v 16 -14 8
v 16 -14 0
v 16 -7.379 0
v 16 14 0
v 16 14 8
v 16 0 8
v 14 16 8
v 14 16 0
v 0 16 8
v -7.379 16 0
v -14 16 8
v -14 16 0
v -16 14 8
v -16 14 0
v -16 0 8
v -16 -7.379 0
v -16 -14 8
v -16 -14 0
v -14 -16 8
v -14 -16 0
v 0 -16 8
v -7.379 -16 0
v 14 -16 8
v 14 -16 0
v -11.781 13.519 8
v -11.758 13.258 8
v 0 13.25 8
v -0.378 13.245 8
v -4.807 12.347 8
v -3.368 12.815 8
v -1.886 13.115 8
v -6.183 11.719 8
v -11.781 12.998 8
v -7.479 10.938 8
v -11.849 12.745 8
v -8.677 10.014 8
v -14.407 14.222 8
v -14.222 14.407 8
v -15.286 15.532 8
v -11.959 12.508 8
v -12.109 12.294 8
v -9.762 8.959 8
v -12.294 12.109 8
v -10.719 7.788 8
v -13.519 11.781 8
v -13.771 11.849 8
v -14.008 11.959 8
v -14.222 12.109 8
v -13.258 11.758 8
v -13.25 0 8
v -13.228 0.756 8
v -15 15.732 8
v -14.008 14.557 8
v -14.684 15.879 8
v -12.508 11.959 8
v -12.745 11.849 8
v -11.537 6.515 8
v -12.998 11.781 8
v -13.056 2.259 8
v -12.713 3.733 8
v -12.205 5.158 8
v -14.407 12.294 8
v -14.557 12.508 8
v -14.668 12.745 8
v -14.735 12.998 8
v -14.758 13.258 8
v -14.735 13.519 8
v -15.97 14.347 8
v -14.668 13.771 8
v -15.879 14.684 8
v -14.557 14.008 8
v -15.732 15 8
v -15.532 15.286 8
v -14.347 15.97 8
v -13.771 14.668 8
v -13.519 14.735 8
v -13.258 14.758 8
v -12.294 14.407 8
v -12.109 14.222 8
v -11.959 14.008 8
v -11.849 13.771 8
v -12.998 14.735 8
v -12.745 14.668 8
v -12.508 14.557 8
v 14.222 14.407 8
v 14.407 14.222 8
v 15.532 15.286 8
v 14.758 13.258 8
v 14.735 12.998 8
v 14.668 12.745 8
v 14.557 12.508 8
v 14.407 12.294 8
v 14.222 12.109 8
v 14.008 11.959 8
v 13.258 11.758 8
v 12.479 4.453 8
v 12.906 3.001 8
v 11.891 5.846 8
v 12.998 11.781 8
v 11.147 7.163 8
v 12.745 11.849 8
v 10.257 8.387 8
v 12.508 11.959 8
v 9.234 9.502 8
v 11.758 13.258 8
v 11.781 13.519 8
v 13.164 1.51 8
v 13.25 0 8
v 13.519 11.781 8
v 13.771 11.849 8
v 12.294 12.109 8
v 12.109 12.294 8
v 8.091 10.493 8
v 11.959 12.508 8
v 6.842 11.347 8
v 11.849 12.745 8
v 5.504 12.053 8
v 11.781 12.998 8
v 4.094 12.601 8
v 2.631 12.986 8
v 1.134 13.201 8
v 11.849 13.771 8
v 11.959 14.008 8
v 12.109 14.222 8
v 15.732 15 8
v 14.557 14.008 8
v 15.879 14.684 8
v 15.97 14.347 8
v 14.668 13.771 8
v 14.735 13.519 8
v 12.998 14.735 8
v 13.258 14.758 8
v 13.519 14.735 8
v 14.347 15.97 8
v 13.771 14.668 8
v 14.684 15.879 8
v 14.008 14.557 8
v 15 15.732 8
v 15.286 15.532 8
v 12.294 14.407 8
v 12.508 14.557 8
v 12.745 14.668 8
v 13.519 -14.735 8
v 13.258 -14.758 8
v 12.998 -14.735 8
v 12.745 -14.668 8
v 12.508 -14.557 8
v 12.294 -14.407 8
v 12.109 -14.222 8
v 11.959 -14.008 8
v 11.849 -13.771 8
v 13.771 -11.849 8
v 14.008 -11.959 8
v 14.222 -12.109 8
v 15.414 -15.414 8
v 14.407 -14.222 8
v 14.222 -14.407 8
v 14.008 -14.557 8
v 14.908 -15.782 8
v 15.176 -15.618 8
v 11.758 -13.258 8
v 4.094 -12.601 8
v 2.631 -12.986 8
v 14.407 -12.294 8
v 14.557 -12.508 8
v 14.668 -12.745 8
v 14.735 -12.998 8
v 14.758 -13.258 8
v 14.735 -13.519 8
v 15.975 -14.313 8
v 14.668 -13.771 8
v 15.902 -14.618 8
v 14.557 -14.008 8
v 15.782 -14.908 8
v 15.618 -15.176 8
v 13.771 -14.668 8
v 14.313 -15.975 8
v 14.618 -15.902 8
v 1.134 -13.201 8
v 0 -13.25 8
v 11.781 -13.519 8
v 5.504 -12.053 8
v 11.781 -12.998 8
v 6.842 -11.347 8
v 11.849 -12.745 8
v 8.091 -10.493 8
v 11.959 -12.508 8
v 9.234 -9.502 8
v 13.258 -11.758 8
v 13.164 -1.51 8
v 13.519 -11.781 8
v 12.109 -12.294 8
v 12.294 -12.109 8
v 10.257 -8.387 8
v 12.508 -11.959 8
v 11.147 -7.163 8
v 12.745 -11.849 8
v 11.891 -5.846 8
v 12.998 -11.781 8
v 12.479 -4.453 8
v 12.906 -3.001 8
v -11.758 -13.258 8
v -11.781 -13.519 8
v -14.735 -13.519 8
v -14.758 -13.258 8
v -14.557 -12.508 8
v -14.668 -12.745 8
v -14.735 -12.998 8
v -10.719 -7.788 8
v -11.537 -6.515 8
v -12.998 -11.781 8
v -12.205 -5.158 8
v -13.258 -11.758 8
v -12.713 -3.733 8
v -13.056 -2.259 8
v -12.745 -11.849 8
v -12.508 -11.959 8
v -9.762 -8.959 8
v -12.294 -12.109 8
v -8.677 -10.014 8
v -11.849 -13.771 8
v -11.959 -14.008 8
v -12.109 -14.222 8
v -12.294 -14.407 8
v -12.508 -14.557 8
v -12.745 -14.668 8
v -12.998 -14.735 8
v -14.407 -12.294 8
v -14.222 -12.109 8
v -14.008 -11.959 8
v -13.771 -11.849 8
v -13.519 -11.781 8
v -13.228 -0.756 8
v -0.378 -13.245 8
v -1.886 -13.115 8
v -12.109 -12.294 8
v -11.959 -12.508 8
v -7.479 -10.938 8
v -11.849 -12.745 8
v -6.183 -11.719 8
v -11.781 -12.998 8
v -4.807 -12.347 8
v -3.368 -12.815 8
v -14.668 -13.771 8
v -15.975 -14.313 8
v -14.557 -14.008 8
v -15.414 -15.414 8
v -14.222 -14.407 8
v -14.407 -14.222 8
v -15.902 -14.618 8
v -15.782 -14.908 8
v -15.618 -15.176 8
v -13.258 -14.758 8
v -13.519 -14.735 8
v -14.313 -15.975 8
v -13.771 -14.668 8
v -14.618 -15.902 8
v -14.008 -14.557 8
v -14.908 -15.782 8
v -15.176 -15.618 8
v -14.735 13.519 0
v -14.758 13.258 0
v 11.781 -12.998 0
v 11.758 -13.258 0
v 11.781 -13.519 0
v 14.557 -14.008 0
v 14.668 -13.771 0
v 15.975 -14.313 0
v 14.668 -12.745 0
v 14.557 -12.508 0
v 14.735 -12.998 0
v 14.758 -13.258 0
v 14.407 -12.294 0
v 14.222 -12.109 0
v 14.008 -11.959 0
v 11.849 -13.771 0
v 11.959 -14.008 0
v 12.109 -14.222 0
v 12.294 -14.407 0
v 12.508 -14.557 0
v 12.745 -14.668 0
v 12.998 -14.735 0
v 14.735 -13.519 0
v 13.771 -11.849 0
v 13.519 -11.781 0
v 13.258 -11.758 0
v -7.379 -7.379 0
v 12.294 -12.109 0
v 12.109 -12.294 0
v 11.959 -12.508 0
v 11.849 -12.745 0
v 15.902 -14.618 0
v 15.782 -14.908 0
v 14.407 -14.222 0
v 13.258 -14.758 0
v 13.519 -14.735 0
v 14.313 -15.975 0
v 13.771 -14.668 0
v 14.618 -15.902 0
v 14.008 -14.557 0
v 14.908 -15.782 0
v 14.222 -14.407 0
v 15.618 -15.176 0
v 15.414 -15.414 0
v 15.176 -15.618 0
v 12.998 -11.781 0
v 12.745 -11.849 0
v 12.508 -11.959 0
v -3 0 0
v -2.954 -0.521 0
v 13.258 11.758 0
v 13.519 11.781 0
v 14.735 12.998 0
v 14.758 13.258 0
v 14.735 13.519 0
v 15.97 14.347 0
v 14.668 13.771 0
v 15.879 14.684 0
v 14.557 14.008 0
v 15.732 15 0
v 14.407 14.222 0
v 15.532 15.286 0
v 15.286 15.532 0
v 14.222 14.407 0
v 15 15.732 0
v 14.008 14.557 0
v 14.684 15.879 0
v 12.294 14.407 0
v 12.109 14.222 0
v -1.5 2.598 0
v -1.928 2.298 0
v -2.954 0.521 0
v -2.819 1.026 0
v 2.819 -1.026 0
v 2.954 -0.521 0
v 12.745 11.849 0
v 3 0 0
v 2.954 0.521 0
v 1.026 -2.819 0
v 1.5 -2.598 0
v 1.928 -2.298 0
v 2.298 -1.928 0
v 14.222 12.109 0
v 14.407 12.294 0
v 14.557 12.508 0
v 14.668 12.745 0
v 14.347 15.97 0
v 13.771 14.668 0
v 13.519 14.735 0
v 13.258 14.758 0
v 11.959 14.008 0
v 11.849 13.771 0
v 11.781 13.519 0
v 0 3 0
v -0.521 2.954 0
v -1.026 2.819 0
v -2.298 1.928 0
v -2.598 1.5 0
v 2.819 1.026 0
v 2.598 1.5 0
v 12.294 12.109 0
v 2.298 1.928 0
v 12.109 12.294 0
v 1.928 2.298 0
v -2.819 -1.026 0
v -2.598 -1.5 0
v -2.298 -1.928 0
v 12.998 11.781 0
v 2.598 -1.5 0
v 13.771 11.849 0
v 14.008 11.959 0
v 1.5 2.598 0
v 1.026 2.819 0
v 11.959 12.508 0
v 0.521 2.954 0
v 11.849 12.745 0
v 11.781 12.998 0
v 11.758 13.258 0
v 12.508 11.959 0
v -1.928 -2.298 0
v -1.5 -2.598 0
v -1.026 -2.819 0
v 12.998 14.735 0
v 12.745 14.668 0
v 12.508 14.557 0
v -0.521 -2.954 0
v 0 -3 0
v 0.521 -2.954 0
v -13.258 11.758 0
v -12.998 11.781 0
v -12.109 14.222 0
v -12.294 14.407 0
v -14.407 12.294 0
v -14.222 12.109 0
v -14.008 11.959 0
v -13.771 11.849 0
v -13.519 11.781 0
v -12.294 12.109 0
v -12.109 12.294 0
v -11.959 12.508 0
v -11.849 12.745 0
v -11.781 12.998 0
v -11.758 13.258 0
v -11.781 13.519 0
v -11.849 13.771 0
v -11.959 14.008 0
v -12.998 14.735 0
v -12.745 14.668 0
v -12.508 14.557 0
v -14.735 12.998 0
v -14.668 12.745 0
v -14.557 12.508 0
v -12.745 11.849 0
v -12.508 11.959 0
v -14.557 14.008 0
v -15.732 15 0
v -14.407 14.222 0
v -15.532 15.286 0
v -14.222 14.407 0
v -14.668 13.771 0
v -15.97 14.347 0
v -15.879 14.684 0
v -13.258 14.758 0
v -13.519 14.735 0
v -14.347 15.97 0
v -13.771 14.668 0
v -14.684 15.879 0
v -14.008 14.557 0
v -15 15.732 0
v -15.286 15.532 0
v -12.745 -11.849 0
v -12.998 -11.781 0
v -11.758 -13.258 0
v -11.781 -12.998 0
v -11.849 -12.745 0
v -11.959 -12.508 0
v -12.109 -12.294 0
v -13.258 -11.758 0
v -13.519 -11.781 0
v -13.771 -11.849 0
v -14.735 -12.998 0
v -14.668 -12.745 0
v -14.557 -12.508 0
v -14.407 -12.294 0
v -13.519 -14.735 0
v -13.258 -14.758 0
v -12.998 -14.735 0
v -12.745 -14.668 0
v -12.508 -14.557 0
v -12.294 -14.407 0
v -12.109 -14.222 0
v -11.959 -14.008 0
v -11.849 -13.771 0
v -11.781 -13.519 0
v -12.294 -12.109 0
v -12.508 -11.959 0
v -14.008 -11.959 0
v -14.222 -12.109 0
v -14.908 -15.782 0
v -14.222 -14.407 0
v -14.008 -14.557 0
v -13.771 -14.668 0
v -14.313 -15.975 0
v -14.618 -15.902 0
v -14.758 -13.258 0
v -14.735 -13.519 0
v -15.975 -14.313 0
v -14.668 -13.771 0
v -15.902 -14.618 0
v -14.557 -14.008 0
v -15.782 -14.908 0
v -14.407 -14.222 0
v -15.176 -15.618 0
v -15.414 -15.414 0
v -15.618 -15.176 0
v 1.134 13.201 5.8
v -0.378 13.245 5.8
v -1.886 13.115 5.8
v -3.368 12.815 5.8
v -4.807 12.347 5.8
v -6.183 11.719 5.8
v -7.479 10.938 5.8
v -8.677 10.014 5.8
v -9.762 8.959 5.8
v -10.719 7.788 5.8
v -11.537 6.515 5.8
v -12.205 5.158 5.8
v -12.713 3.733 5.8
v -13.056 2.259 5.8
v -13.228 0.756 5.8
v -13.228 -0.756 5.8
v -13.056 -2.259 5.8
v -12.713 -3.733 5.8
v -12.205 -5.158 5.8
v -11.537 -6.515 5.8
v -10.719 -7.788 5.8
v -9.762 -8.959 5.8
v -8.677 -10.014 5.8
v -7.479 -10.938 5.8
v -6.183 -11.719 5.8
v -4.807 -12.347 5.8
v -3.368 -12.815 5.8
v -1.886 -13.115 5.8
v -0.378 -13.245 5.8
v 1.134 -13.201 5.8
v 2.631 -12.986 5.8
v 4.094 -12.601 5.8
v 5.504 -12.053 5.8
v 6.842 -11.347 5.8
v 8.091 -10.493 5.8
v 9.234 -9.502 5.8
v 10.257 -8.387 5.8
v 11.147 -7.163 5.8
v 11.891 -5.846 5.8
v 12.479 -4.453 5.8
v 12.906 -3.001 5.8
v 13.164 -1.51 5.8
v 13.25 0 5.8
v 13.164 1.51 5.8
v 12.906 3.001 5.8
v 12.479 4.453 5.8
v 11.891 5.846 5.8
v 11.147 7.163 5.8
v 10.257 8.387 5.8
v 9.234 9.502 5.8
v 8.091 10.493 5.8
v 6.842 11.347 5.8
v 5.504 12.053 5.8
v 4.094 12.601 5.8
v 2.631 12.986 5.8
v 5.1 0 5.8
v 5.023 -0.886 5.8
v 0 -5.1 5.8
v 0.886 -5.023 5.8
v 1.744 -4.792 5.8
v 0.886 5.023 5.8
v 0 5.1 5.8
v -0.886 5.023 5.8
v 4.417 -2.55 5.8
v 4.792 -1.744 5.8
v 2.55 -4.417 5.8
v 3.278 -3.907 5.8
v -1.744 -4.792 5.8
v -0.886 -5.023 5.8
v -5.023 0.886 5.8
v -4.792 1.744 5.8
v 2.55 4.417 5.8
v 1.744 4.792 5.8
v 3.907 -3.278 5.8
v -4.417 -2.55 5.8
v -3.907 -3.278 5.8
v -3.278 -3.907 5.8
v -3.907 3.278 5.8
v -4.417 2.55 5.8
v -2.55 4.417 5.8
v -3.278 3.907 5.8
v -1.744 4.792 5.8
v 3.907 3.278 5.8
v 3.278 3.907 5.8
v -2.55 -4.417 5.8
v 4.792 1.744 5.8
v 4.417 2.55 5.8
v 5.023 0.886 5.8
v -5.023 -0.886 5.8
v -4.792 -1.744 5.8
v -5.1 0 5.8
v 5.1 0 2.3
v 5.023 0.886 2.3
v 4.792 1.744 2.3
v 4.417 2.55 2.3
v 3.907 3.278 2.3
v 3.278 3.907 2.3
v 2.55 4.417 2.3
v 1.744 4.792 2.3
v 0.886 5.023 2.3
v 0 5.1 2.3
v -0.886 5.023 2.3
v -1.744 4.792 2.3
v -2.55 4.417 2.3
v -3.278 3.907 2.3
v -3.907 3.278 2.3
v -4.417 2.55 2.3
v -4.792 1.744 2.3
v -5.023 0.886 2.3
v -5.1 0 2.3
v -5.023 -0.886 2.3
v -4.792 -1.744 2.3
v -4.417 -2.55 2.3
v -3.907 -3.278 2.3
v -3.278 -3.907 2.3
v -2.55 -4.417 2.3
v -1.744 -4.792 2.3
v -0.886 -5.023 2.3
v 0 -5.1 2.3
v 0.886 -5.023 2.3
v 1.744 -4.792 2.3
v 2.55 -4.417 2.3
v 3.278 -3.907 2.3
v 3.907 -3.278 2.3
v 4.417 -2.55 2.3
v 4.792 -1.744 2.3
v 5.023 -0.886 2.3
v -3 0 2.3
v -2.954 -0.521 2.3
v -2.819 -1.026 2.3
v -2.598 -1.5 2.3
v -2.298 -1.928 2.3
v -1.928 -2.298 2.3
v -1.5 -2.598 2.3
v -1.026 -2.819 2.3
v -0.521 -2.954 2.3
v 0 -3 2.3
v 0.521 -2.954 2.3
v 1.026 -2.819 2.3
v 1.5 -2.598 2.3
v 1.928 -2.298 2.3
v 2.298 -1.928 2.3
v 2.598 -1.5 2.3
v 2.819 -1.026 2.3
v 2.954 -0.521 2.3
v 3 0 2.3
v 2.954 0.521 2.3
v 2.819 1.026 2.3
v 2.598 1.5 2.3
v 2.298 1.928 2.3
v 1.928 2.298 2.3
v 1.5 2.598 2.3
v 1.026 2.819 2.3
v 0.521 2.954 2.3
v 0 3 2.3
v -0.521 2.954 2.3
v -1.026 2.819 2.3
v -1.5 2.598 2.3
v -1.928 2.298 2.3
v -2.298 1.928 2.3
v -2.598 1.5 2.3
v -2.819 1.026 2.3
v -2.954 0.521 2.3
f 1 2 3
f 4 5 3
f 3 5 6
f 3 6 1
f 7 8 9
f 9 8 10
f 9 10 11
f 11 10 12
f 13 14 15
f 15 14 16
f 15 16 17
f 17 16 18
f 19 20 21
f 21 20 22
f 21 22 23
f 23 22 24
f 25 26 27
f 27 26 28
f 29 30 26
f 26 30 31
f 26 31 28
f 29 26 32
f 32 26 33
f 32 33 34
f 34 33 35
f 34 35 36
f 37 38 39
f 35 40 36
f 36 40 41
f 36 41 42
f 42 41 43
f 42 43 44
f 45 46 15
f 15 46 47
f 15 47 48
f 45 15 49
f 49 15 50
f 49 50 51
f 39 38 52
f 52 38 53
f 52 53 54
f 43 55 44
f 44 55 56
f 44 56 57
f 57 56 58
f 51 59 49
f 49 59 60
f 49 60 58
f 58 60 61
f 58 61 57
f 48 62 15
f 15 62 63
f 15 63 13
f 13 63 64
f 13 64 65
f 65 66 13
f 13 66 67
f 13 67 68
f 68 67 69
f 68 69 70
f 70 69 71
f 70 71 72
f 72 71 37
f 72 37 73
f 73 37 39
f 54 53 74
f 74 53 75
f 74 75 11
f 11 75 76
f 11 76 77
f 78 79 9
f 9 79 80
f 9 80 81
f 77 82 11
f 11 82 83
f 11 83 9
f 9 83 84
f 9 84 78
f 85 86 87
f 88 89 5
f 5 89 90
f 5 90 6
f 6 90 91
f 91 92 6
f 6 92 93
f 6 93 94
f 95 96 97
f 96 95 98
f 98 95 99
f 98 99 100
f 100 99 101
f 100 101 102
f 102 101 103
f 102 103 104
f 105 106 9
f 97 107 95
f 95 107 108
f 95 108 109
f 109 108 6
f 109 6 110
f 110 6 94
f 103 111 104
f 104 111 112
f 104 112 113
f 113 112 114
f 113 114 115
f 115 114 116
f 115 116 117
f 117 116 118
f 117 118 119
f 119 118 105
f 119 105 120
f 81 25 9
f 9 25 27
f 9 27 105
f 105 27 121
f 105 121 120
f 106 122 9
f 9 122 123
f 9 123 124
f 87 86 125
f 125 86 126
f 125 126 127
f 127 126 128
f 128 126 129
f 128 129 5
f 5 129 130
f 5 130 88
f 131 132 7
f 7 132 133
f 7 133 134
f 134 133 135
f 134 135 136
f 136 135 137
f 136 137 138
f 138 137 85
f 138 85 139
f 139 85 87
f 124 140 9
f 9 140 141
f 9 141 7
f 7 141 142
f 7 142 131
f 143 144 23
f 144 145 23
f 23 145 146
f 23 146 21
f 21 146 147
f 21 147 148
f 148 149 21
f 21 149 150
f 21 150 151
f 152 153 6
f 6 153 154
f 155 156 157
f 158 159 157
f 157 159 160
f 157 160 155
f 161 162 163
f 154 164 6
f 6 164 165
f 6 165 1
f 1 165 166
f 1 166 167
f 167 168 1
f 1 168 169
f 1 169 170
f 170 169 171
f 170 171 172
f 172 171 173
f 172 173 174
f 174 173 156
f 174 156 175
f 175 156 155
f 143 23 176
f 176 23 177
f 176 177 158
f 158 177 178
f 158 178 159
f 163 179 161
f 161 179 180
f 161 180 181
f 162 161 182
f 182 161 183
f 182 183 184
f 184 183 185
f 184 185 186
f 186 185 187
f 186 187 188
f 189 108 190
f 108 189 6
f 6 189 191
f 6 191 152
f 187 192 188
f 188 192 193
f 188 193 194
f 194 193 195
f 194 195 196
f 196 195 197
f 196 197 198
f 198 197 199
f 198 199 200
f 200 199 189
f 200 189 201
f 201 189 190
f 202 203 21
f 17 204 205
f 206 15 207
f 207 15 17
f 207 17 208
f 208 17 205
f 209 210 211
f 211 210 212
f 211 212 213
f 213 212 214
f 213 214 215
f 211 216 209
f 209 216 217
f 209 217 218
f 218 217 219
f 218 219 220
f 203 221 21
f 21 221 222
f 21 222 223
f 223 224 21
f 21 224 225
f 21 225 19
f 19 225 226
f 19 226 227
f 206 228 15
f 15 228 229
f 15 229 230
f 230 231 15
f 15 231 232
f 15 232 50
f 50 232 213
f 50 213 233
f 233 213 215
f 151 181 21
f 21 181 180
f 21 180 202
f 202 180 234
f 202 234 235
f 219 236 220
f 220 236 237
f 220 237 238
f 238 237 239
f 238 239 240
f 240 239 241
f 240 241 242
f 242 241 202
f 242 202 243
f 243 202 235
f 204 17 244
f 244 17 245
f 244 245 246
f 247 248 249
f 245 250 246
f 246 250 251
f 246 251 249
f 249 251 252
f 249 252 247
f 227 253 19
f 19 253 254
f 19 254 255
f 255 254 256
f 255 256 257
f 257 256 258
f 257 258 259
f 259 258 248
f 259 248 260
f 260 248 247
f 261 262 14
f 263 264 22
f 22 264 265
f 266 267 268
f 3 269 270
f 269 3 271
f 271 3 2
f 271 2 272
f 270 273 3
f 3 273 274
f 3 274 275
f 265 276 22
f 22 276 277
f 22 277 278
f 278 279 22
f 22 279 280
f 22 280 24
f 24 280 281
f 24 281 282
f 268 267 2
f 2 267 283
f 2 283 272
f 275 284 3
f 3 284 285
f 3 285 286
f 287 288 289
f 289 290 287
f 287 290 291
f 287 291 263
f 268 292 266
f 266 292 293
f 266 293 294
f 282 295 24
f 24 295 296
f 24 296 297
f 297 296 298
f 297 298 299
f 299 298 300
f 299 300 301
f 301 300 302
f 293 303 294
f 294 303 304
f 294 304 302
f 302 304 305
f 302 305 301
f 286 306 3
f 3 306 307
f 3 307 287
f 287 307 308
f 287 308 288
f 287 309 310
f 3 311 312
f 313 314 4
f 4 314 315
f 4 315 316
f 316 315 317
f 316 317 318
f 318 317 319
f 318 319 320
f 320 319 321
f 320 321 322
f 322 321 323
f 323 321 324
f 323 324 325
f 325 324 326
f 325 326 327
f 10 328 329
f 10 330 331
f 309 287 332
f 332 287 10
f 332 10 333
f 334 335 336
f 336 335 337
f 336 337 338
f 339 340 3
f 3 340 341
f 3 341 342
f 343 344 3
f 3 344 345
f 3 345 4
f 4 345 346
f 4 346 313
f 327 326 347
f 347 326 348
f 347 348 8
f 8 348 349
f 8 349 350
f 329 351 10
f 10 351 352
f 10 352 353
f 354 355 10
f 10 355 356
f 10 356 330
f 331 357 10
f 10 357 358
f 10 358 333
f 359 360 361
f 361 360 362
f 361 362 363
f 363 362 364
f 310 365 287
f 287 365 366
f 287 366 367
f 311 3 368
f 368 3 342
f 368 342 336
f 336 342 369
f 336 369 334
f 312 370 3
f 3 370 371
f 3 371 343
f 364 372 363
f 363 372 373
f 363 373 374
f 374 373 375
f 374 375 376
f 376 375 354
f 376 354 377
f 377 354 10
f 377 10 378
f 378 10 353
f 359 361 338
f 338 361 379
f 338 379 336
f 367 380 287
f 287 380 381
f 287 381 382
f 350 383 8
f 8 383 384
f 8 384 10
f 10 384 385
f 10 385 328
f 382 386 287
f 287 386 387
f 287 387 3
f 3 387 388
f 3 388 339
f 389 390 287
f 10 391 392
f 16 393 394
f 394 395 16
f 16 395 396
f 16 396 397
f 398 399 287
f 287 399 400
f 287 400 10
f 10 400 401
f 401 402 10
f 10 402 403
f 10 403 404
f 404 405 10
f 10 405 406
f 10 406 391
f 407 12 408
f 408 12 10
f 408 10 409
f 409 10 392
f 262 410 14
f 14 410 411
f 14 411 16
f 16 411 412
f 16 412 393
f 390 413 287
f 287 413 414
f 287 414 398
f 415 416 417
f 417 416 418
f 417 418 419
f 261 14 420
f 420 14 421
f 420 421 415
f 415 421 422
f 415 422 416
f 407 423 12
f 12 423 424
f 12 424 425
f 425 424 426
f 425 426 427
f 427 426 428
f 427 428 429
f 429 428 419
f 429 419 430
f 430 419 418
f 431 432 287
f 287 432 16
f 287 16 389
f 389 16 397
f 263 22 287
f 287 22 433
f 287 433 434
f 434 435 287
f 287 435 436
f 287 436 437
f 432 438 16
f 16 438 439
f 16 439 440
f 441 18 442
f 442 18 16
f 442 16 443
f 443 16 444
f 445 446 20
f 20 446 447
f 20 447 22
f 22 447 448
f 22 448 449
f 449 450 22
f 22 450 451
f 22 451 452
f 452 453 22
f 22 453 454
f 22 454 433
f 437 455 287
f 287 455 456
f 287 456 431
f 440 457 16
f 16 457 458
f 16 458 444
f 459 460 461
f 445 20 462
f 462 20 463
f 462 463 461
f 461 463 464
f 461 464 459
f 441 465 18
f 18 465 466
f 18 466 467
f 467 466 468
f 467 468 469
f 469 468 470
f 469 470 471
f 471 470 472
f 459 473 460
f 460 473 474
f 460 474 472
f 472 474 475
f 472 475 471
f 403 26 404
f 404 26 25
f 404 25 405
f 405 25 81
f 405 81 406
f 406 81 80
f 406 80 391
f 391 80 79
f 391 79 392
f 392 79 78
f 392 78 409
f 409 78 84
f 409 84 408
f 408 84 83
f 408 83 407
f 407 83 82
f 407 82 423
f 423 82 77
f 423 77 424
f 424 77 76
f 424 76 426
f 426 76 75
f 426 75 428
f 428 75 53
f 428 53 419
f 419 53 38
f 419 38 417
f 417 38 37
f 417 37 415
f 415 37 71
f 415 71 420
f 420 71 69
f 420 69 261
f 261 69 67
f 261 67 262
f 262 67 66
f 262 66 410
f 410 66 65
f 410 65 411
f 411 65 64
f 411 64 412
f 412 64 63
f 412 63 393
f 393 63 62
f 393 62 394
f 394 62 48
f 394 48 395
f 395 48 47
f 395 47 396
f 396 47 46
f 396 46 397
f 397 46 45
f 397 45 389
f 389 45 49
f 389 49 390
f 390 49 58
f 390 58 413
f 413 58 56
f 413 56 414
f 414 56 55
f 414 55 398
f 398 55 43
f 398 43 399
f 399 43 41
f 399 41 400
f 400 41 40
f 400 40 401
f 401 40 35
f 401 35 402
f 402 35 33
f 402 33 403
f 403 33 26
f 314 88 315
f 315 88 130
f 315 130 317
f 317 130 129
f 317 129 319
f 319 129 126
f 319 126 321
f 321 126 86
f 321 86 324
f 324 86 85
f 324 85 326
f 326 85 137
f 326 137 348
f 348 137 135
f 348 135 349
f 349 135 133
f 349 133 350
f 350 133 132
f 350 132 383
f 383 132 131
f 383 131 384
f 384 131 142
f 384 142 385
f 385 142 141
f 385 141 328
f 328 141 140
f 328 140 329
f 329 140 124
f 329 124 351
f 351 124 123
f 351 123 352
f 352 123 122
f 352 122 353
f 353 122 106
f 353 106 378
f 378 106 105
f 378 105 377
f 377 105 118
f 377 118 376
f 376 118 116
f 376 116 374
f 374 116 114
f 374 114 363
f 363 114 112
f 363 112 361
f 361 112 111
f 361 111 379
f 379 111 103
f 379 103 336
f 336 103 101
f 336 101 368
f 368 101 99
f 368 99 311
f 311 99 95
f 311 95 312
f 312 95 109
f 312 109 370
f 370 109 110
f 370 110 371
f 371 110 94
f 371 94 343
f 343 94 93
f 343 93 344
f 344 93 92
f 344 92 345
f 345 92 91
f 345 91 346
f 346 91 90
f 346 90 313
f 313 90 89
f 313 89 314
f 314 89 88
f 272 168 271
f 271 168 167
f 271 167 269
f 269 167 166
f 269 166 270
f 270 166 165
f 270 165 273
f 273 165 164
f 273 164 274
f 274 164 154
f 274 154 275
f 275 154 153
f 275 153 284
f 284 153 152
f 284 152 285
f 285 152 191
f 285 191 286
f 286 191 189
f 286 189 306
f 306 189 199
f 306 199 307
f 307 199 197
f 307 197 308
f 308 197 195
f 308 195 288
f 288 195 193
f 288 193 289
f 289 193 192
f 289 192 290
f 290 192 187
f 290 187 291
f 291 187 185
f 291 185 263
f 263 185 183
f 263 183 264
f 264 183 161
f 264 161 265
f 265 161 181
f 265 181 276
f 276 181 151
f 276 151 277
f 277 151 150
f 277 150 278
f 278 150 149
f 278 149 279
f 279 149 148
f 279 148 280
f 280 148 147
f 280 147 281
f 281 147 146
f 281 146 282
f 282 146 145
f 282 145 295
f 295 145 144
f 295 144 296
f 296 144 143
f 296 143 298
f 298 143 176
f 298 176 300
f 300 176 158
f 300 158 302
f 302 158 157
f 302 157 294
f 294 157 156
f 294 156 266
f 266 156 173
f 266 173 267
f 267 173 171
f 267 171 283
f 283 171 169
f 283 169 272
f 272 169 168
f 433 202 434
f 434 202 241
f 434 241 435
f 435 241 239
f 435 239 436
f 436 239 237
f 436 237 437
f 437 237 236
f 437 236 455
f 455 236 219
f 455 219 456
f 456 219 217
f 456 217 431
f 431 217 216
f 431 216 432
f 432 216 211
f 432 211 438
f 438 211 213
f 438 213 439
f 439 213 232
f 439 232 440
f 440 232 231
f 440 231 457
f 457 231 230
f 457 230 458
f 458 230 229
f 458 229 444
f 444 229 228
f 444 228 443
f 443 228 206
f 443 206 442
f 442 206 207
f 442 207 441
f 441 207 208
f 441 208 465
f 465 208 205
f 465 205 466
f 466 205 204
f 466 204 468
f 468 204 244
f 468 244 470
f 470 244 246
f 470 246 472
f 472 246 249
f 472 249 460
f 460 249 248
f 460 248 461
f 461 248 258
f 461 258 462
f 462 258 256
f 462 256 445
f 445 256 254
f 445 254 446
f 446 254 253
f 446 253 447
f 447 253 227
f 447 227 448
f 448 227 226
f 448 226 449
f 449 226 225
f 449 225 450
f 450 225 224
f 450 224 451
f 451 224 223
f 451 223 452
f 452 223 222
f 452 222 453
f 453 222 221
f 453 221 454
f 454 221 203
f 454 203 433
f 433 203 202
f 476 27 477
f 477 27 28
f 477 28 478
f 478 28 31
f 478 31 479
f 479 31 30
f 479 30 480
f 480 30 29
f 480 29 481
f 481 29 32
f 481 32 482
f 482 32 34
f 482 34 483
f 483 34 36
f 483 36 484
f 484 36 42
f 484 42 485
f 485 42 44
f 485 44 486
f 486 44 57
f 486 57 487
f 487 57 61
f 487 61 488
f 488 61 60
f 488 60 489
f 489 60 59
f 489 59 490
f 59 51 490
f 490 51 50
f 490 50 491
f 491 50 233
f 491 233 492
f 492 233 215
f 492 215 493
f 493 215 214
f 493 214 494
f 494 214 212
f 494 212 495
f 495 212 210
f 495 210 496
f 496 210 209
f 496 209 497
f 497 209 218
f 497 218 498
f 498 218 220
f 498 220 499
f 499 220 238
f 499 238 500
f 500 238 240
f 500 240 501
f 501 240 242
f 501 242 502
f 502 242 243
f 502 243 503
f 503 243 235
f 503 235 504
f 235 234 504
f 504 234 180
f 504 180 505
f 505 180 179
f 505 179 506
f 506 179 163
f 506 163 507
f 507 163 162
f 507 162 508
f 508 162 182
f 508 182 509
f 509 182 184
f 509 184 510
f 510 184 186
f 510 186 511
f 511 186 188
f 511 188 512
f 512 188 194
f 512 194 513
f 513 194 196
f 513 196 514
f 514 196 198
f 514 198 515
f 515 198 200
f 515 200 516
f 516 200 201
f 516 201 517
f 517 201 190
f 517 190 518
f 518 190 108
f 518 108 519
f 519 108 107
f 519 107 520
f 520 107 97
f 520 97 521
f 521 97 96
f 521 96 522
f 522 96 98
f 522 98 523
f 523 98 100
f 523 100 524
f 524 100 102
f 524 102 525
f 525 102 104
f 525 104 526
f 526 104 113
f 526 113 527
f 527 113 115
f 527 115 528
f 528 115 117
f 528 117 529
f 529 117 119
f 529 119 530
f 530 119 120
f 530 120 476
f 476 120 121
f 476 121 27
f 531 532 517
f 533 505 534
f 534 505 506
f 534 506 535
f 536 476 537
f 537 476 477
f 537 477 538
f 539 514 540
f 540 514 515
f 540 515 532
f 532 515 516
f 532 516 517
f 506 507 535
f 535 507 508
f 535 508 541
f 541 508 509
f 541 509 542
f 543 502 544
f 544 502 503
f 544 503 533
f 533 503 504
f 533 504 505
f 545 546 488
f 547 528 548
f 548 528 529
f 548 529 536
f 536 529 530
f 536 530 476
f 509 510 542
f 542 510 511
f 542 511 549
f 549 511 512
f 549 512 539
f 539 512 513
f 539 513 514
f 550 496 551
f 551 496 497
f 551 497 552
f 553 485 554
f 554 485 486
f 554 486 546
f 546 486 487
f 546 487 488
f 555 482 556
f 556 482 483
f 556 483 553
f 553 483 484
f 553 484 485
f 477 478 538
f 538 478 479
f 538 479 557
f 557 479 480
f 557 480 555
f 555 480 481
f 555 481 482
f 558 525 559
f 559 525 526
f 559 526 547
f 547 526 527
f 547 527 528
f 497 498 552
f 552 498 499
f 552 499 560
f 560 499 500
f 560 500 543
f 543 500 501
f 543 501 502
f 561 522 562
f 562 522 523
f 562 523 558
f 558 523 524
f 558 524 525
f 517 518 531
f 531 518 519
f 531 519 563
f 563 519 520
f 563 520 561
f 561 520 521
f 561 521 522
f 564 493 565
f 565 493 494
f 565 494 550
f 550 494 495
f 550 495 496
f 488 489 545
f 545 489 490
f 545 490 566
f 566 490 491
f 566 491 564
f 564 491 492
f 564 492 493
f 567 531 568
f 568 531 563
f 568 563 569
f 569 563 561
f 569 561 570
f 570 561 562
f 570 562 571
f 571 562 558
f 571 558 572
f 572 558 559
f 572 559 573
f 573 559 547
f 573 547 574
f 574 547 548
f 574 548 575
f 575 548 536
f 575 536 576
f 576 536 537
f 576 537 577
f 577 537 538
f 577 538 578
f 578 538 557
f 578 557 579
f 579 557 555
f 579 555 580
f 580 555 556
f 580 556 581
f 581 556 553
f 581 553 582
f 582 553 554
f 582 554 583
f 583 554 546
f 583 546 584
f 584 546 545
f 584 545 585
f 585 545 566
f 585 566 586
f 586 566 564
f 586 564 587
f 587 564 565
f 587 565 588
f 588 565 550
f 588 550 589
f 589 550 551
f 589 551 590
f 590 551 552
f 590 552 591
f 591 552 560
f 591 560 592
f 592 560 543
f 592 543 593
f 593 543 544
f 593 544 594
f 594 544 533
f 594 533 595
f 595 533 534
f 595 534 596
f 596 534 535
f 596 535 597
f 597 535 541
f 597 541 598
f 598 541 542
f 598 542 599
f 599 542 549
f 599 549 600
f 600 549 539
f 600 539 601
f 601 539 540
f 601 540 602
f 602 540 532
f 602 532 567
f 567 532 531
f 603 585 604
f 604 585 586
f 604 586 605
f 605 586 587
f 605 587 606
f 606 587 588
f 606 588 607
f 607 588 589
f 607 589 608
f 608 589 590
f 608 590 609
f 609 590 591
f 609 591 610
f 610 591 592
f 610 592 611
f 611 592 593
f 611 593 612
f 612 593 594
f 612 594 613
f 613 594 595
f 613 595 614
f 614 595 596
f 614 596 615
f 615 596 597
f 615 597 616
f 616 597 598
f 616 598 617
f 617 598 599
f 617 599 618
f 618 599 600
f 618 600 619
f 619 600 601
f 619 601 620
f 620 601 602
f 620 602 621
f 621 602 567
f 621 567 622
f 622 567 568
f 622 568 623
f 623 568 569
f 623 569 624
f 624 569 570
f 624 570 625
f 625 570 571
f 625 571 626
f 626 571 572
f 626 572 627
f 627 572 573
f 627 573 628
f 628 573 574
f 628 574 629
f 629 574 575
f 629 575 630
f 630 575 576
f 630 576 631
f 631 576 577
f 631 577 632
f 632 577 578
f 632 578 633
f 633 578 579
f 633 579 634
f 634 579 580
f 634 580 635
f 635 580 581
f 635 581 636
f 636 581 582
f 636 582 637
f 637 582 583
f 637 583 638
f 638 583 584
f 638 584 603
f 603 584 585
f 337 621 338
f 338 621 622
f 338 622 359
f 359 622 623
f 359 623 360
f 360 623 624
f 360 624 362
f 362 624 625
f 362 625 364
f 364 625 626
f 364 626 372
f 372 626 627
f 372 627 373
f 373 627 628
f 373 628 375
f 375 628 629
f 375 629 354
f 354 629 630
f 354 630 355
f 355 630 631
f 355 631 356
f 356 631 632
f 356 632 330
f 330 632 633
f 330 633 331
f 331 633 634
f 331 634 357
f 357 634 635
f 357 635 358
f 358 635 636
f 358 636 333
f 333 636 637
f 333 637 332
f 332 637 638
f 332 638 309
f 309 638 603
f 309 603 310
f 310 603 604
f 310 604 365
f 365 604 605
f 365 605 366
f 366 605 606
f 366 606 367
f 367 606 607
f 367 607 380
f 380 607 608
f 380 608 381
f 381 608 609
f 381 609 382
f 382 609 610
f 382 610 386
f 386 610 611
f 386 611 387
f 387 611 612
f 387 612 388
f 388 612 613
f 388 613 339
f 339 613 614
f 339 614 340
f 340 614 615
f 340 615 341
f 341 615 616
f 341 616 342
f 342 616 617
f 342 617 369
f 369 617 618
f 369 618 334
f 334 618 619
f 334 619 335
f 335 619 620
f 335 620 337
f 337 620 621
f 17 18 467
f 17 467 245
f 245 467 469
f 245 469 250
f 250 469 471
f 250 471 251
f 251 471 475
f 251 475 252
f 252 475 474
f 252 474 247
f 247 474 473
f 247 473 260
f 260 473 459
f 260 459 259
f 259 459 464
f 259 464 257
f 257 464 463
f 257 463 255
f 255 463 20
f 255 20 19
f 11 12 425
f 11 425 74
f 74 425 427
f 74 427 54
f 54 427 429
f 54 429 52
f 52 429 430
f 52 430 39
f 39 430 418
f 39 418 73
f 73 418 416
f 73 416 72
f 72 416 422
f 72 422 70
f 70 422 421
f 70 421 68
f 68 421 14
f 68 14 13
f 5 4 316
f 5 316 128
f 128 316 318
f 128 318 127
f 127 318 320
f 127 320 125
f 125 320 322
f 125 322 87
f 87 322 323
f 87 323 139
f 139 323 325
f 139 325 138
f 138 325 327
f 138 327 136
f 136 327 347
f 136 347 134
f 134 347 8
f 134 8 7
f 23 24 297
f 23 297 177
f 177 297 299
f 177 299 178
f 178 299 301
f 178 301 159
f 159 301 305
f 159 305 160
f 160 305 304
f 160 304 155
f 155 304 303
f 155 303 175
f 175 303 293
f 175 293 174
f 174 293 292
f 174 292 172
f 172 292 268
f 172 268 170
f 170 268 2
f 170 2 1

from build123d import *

# Parameters (mm, degrees)
SKETCH_1_W          = 32
SKETCH_1_H          = 32
EXTRUDE_1_DEPTH     = 8
CUT_EXTRUDE_1_REACH = 10
SKETCH_2_R          = 1.5
SKETCH_3_R          = 13.25
CUT_EXTRUDE_2_DEPTH = 2.2
SKETCH_4_R          = 5.1
CUT_EXTRUDE_3_DEPTH = 3.5
CUT_EXTRUDE_4_REACH = 4.3
SKETCH_5_R          = 3
FILLET_1_R          = 2


with BuildPart() as part:
    # 草图1 → 凸台-拉伸1 (new body)
    with BuildSketch(Plane.XY):
        Rectangle(SKETCH_1_W, SKETCH_1_H)
    extrude(amount=EXTRUDE_1_DEPTH)

    # 草图2 → 切除-拉伸1 (cut, up to next)
    with BuildSketch(Plane.XY.offset(8), mode=Mode.PRIVATE) as cut_extrude_1_sk1:
        with Locations((-13.258252147, 13.258252147)):
            Circle(SKETCH_2_R)
    cut_extrude_1_tool1 = extrude(cut_extrude_1_sk1.sketch, amount=-CUT_EXTRUDE_1_REACH, mode=Mode.PRIVATE) & part.part
    add(cut_extrude_1_tool1.solids().sort_by_distance((-13.258252, 13.258252, 8))[0], mode=Mode.SUBTRACT)
    # 草图2 → 切除-拉伸1 (cut, up to next)
    with BuildSketch(Plane.XY.offset(8), mode=Mode.PRIVATE) as cut_extrude_1_sk2:
        with Locations((13.258252147, 13.258252147)):
            Circle(SKETCH_2_R)
    cut_extrude_1_tool2 = extrude(cut_extrude_1_sk2.sketch, amount=-CUT_EXTRUDE_1_REACH, mode=Mode.PRIVATE) & part.part
    add(cut_extrude_1_tool2.solids().sort_by_distance((13.258252, 13.258252, 8))[0], mode=Mode.SUBTRACT)
    # 草图2 → 切除-拉伸1 (cut, up to next)
    with BuildSketch(Plane.XY.offset(8), mode=Mode.PRIVATE) as cut_extrude_1_sk3:
        with Locations((13.258252147, -13.258252147)):
            Circle(SKETCH_2_R)
    cut_extrude_1_tool3 = extrude(cut_extrude_1_sk3.sketch, amount=-CUT_EXTRUDE_1_REACH, mode=Mode.PRIVATE) & part.part
    add(cut_extrude_1_tool3.solids().sort_by_distance((13.258252, -13.258252, 8))[0], mode=Mode.SUBTRACT)
    # 草图2 → 切除-拉伸1 (cut, up to next)
    with BuildSketch(Plane.XY.offset(8), mode=Mode.PRIVATE) as cut_extrude_1_sk4:
        with Locations((-13.258252147, -13.258252147)):
            Circle(SKETCH_2_R)
    cut_extrude_1_tool4 = extrude(cut_extrude_1_sk4.sketch, amount=-CUT_EXTRUDE_1_REACH, mode=Mode.PRIVATE) & part.part
    add(cut_extrude_1_tool4.solids().sort_by_distance((-13.258252, -13.258252, 8))[0], mode=Mode.SUBTRACT)

    # 草图3 → 切除-拉伸2 (cut)
    with BuildSketch(Plane.XY.offset(8)):
        Circle(SKETCH_3_R)
    extrude(amount=-CUT_EXTRUDE_2_DEPTH, mode=Mode.SUBTRACT)

    # 草图4 → 切除-拉伸3 (cut)
    with BuildSketch(Plane.XY.offset(5.8)):
        Circle(SKETCH_4_R)
    extrude(amount=-CUT_EXTRUDE_3_DEPTH, mode=Mode.SUBTRACT)

    # 草图5 → 切除-拉伸4 (cut, up to next)
    with BuildSketch(Plane.XY.offset(2.3), mode=Mode.PRIVATE) as cut_extrude_4_sk1:
        Circle(SKETCH_5_R)
    cut_extrude_4_tool1 = extrude(cut_extrude_4_sk1.sketch, amount=-CUT_EXTRUDE_4_REACH, mode=Mode.PRIVATE) & part.part
    add(cut_extrude_4_tool1.solids().sort_by_distance((0, 0, 2.3))[0], mode=Mode.SUBTRACT)

    # 圆角1
    fillet_1_edges = [part.edges().sort_by_distance(p)[0] for p in [
        (16, -16, 4),
        (-16, -16, 4),
        (-16, 16, 4),
        (16, 16, 4),
    ]]
    fillet(fillet_1_edges, radius=FILLET_1_R)


solid = part.part
